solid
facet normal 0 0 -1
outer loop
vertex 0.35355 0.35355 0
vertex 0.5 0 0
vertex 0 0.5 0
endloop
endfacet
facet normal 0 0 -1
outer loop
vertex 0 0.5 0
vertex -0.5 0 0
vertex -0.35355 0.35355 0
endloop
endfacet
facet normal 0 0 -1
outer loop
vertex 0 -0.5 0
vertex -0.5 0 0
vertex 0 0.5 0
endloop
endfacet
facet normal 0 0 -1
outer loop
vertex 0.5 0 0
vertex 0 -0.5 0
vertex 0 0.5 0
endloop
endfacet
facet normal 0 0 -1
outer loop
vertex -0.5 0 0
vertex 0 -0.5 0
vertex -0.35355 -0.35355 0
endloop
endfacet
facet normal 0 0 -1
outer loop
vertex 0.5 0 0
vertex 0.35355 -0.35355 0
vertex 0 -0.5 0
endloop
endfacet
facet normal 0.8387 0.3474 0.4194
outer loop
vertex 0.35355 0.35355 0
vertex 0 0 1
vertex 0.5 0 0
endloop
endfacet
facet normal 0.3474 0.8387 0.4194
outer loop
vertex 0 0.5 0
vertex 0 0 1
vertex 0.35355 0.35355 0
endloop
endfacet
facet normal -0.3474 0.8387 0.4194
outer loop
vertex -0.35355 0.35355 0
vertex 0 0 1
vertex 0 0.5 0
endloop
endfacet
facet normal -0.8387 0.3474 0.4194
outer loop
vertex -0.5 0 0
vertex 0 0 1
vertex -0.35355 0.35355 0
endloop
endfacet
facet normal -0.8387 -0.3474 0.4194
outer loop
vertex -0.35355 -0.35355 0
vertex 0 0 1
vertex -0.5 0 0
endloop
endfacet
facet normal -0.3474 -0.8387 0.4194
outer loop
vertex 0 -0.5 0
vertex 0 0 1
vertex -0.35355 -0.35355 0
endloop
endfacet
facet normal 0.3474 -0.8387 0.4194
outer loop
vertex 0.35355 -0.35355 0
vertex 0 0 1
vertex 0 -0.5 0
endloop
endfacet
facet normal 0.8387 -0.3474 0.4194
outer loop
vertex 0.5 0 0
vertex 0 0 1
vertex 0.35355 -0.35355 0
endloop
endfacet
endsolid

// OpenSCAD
// Octagon Pyramid for Basic Shapes
// by Slashee the Cow

linear_extrude(1, scale = 0)
circle(d=1, $fn=8);
